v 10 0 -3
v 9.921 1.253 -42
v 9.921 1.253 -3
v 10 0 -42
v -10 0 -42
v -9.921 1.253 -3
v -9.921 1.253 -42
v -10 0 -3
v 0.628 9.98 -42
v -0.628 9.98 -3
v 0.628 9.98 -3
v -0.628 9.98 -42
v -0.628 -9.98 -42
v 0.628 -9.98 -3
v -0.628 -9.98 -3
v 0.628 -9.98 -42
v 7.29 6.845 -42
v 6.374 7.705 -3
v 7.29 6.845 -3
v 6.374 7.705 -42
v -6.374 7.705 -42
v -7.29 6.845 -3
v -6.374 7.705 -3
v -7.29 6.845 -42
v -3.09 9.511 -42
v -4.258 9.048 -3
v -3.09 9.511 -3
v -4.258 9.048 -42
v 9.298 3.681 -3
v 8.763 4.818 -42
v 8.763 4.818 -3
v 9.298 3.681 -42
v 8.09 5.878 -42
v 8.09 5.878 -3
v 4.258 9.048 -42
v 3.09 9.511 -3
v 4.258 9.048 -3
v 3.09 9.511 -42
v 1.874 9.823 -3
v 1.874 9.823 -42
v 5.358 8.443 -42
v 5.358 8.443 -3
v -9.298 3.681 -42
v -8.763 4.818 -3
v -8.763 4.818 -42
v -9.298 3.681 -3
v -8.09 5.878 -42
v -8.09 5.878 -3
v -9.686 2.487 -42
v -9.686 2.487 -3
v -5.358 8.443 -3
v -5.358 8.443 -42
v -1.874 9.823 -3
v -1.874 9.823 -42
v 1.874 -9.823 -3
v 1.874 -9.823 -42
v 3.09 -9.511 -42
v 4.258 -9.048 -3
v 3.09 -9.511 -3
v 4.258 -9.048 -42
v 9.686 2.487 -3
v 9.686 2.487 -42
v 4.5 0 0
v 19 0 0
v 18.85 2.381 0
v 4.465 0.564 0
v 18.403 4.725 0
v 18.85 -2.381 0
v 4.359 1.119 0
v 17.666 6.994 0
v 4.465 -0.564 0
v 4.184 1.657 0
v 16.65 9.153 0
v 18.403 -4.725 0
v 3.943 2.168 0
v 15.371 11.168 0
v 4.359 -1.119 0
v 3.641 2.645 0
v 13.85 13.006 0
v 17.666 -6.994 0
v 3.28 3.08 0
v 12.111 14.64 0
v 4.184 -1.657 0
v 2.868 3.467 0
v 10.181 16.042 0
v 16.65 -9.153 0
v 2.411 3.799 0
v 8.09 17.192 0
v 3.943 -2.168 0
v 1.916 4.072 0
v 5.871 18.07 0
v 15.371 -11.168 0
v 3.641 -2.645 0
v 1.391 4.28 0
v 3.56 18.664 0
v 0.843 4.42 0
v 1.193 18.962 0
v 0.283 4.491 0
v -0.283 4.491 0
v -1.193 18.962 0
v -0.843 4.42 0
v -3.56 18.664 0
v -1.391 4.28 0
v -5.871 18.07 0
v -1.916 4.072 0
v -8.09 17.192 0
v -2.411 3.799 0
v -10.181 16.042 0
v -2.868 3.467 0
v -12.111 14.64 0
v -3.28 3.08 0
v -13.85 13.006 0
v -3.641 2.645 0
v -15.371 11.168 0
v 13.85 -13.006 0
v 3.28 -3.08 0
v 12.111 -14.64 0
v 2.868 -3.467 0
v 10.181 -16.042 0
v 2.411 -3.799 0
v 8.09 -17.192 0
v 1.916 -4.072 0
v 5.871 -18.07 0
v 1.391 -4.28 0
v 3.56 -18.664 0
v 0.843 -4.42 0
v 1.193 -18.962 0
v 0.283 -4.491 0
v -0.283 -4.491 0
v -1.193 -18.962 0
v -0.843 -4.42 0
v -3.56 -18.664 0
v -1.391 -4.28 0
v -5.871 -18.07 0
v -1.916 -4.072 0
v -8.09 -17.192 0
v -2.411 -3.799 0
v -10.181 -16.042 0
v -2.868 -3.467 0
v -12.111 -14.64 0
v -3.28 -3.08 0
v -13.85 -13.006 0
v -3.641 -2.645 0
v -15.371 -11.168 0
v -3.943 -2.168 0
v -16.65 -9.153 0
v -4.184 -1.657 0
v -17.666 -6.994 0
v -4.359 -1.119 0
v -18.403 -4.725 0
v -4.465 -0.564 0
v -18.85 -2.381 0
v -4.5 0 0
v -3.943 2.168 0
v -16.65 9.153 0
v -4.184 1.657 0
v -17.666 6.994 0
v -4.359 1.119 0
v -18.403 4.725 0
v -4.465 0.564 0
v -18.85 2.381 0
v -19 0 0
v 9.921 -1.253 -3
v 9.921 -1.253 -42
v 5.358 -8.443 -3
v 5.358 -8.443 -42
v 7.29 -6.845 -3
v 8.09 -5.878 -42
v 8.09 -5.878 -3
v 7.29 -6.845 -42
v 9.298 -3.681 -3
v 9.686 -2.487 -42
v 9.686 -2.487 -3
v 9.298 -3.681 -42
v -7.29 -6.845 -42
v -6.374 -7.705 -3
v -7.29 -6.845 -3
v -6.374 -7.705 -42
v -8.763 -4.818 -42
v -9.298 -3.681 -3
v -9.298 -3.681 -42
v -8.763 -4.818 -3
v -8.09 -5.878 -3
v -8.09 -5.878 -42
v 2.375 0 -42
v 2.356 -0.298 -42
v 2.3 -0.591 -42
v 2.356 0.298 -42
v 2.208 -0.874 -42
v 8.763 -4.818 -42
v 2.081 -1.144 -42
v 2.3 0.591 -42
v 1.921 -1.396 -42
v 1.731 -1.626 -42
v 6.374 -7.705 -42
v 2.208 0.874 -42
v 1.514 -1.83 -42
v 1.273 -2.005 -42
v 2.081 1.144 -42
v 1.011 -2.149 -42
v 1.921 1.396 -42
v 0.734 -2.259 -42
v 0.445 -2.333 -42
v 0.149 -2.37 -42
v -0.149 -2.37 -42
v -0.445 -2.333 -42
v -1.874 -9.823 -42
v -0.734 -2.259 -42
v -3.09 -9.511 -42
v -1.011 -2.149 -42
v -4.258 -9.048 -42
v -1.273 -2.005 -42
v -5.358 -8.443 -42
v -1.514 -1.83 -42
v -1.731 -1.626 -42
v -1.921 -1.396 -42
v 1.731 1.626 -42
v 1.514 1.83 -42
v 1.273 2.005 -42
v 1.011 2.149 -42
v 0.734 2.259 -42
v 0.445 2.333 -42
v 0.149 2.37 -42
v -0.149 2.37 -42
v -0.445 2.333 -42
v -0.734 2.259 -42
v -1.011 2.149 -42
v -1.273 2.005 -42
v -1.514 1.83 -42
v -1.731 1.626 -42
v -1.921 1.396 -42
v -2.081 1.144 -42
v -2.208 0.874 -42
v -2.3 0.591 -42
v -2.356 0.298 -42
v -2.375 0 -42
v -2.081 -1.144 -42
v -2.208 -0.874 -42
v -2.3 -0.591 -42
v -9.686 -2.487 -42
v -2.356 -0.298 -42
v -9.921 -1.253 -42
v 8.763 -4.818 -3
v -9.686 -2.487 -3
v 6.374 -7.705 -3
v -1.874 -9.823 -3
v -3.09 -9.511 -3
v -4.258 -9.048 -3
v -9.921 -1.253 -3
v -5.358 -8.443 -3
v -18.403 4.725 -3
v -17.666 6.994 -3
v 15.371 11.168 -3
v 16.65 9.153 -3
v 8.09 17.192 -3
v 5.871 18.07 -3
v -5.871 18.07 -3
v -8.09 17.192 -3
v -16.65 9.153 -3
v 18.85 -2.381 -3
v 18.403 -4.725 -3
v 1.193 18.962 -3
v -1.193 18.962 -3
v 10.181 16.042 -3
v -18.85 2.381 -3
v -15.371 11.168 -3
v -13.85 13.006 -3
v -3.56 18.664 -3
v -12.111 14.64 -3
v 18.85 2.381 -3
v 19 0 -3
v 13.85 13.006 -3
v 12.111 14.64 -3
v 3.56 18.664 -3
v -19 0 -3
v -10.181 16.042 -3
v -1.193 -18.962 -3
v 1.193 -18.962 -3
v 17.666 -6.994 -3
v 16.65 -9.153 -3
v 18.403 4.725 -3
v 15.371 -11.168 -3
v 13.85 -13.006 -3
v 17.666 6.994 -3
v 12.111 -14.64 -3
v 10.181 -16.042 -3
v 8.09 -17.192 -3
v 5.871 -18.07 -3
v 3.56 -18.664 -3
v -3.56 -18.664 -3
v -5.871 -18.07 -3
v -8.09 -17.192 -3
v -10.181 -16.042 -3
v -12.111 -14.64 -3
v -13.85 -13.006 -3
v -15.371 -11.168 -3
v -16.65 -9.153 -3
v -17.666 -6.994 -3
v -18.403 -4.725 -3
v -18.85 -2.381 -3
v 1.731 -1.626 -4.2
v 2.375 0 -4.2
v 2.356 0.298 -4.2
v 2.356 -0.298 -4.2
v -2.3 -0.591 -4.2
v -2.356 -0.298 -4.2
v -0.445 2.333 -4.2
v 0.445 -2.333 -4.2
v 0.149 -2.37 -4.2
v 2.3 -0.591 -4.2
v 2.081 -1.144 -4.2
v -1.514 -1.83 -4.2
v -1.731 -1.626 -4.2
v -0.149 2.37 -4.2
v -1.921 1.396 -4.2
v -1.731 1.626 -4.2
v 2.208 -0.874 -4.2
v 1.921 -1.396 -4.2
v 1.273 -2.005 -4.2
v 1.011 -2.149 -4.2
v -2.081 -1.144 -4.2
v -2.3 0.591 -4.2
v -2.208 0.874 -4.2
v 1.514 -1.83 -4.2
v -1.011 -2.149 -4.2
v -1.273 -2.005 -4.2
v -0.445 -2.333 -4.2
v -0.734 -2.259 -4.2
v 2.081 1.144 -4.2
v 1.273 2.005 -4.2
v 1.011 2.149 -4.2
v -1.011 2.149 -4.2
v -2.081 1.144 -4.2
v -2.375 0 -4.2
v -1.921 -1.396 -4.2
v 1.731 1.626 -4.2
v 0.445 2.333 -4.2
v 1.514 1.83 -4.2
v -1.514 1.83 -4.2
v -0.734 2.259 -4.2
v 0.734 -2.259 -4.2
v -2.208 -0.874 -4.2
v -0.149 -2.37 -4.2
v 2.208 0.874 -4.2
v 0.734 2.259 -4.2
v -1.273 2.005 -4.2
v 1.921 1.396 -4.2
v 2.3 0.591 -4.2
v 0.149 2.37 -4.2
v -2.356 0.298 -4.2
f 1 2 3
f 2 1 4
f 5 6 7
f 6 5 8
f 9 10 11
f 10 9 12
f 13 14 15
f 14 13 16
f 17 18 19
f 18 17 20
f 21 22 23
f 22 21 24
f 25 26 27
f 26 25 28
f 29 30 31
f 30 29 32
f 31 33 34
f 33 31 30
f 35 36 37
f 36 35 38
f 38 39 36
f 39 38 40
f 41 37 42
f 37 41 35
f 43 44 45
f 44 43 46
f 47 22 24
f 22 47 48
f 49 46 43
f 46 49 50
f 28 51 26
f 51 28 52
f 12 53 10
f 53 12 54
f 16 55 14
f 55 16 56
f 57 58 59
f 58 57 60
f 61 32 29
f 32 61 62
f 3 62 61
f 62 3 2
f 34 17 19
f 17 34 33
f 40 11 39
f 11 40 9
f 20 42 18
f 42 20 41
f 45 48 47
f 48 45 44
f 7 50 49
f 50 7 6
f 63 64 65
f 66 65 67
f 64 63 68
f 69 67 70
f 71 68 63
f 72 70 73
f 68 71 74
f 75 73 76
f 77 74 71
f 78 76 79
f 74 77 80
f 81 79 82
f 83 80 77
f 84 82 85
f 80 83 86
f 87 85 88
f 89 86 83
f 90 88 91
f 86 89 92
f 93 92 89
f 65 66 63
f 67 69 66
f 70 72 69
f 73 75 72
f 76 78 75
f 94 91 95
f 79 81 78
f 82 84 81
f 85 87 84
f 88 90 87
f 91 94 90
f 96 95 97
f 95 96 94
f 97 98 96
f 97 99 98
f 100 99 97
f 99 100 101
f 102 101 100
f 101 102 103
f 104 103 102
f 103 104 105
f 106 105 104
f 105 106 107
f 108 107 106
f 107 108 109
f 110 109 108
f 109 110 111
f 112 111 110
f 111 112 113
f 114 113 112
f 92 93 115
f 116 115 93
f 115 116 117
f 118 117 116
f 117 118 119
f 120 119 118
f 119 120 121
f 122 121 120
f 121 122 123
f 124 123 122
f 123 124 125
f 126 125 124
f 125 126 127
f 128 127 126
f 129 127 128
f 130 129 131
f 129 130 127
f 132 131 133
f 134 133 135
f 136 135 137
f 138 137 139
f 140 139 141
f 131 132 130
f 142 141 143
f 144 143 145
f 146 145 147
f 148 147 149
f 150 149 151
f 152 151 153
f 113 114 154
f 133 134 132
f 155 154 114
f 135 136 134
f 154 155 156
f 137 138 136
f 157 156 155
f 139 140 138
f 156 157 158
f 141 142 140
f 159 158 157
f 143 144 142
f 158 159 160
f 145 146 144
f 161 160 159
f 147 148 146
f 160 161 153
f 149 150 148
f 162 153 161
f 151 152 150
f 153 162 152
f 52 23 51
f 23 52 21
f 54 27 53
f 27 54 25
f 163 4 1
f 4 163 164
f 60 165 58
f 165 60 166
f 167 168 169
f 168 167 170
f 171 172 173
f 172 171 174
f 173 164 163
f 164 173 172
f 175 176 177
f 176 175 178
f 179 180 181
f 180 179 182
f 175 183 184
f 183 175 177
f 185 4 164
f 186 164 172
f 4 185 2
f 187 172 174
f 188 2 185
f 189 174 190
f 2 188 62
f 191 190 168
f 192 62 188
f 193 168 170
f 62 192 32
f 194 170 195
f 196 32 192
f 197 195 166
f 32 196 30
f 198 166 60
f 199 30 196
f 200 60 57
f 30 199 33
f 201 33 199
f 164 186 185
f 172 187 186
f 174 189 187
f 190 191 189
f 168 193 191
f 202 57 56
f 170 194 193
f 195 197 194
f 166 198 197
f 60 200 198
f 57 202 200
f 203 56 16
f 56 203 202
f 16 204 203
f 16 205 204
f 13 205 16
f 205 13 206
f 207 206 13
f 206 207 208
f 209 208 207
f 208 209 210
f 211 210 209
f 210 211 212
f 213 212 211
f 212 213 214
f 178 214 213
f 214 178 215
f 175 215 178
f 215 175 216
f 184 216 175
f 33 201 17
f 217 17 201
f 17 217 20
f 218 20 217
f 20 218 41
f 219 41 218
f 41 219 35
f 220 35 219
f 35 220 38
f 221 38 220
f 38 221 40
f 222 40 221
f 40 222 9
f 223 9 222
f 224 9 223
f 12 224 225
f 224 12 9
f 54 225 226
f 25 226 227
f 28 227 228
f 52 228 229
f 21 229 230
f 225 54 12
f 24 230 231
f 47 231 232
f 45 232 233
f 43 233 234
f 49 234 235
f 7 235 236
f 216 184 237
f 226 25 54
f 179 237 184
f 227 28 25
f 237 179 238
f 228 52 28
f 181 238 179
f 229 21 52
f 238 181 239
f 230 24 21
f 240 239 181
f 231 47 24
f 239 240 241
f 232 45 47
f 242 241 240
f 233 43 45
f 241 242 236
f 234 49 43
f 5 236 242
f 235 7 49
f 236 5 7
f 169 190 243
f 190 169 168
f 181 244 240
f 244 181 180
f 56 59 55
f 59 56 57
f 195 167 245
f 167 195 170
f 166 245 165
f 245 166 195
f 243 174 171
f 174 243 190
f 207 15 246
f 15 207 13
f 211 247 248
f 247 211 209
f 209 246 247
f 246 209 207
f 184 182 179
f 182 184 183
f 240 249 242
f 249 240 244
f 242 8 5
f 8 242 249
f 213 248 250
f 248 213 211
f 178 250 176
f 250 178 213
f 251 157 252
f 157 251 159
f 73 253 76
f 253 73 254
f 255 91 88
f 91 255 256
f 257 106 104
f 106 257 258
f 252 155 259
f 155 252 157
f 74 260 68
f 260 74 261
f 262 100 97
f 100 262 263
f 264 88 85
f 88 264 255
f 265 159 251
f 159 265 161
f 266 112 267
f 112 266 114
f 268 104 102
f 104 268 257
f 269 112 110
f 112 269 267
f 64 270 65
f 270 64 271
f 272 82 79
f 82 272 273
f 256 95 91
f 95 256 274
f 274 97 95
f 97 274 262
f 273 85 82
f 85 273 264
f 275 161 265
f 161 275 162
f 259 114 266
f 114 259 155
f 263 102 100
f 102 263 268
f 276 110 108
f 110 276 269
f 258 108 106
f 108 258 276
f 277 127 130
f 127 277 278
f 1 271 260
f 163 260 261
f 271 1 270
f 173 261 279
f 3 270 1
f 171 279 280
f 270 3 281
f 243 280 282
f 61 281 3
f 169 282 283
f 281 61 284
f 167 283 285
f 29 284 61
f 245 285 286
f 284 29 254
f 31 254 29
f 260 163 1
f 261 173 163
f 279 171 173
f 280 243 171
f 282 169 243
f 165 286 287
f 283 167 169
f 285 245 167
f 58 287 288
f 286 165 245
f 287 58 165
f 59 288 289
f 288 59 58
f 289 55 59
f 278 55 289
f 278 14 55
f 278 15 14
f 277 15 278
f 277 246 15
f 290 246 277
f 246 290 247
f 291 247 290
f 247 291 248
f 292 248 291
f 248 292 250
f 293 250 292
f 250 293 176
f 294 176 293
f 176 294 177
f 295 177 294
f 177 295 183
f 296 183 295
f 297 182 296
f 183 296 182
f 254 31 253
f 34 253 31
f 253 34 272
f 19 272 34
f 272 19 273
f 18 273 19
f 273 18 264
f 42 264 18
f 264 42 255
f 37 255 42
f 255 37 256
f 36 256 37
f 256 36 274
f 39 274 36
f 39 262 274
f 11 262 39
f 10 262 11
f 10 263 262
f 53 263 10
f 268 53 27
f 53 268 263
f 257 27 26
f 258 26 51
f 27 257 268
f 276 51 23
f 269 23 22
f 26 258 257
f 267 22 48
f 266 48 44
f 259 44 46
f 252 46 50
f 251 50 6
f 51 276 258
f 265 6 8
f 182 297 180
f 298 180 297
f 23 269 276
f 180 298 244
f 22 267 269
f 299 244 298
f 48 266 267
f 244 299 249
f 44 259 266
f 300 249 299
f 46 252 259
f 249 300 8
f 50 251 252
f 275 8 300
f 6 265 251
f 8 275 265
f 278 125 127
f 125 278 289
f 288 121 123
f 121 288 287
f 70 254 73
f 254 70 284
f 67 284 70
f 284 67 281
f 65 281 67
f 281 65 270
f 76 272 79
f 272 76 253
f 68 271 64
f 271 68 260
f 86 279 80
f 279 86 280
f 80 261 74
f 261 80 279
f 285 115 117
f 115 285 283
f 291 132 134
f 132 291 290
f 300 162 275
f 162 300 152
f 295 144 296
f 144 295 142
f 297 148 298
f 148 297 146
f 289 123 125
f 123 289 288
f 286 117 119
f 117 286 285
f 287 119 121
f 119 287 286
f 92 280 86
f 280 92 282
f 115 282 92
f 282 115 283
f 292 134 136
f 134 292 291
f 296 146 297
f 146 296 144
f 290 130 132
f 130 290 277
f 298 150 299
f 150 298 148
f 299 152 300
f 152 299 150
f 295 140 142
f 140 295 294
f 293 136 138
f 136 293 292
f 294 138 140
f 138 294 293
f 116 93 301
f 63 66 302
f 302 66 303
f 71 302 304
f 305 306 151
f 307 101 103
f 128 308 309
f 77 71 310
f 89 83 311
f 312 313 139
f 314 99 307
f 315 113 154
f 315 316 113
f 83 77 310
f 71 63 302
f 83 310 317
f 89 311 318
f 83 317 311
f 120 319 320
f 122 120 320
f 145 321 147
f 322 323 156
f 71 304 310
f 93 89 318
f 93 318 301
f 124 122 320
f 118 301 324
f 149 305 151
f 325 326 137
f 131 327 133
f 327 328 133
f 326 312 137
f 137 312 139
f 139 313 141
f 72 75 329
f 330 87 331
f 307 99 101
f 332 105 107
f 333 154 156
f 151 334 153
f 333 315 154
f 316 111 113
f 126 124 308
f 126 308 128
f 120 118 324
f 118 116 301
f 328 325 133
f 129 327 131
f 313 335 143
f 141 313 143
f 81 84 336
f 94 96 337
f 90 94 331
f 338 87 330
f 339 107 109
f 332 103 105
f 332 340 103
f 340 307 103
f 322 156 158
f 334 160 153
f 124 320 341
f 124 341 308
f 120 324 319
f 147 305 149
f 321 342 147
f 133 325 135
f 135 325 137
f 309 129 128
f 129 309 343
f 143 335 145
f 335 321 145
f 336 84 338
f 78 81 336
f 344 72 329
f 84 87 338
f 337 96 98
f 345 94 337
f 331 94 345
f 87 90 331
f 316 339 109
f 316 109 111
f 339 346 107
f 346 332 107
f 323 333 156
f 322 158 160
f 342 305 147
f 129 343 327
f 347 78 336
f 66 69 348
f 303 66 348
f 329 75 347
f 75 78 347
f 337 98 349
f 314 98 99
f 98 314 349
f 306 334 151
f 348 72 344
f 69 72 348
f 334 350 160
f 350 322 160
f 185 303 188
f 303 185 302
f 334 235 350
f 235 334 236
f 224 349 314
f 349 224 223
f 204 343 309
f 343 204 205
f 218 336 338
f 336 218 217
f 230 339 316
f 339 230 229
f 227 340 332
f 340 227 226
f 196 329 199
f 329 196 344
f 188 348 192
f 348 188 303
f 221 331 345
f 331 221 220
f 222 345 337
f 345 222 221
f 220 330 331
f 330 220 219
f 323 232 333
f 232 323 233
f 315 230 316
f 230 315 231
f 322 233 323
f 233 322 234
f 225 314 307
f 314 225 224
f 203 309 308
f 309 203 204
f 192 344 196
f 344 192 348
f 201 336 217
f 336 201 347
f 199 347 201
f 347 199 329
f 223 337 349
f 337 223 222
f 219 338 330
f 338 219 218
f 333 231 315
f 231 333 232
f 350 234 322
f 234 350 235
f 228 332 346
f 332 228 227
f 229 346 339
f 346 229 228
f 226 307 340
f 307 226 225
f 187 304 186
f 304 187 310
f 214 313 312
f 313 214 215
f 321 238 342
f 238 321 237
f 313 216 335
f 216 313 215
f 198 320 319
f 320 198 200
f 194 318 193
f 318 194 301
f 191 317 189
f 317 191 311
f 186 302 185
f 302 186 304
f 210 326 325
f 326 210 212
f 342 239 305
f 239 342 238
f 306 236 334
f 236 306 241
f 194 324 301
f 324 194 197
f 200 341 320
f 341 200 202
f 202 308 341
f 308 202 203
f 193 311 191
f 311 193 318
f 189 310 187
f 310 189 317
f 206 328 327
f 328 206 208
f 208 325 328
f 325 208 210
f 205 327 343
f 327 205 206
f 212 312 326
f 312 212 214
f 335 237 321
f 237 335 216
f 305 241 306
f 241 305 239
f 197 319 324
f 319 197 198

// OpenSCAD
$fn = 50;


difference() {
	union() {
		translate(v = [0, 0, -42.0000000000]) {
			cylinder(h = 42, r = 10.0000000000);
		}
		translate(v = [0, 0, -3.0000000000]) {
			cylinder(h = 3, r = 19.0000000000);
		}
	}
	union() {
		translate(v = [0, 0, 0]) {
			rotate(a = [0, 0, 0]) {
				difference() {
					union() {
						#translate(v = [0, 0, -42.0000000000]) {
							cylinder(h = 42, r = 2.2500000000);
						}
						#translate(v = [0, 0, -4.2000000000]) {
							cylinder(h = 4.2000000000, r = 10.0000000000, r1 = 2.3750000000, r2 = 4.5000000000);
						}
						#translate(v = [0, 0, -42.0000000000]) {
							cylinder(h = 42, r = 2.3750000000);
						}
						#translate(v = [0, 0, -42.0000000000]) {
							cylinder(h = 42, r = 2.2500000000);
						}
					}
					union();
				}
			}
		}
	}
}
